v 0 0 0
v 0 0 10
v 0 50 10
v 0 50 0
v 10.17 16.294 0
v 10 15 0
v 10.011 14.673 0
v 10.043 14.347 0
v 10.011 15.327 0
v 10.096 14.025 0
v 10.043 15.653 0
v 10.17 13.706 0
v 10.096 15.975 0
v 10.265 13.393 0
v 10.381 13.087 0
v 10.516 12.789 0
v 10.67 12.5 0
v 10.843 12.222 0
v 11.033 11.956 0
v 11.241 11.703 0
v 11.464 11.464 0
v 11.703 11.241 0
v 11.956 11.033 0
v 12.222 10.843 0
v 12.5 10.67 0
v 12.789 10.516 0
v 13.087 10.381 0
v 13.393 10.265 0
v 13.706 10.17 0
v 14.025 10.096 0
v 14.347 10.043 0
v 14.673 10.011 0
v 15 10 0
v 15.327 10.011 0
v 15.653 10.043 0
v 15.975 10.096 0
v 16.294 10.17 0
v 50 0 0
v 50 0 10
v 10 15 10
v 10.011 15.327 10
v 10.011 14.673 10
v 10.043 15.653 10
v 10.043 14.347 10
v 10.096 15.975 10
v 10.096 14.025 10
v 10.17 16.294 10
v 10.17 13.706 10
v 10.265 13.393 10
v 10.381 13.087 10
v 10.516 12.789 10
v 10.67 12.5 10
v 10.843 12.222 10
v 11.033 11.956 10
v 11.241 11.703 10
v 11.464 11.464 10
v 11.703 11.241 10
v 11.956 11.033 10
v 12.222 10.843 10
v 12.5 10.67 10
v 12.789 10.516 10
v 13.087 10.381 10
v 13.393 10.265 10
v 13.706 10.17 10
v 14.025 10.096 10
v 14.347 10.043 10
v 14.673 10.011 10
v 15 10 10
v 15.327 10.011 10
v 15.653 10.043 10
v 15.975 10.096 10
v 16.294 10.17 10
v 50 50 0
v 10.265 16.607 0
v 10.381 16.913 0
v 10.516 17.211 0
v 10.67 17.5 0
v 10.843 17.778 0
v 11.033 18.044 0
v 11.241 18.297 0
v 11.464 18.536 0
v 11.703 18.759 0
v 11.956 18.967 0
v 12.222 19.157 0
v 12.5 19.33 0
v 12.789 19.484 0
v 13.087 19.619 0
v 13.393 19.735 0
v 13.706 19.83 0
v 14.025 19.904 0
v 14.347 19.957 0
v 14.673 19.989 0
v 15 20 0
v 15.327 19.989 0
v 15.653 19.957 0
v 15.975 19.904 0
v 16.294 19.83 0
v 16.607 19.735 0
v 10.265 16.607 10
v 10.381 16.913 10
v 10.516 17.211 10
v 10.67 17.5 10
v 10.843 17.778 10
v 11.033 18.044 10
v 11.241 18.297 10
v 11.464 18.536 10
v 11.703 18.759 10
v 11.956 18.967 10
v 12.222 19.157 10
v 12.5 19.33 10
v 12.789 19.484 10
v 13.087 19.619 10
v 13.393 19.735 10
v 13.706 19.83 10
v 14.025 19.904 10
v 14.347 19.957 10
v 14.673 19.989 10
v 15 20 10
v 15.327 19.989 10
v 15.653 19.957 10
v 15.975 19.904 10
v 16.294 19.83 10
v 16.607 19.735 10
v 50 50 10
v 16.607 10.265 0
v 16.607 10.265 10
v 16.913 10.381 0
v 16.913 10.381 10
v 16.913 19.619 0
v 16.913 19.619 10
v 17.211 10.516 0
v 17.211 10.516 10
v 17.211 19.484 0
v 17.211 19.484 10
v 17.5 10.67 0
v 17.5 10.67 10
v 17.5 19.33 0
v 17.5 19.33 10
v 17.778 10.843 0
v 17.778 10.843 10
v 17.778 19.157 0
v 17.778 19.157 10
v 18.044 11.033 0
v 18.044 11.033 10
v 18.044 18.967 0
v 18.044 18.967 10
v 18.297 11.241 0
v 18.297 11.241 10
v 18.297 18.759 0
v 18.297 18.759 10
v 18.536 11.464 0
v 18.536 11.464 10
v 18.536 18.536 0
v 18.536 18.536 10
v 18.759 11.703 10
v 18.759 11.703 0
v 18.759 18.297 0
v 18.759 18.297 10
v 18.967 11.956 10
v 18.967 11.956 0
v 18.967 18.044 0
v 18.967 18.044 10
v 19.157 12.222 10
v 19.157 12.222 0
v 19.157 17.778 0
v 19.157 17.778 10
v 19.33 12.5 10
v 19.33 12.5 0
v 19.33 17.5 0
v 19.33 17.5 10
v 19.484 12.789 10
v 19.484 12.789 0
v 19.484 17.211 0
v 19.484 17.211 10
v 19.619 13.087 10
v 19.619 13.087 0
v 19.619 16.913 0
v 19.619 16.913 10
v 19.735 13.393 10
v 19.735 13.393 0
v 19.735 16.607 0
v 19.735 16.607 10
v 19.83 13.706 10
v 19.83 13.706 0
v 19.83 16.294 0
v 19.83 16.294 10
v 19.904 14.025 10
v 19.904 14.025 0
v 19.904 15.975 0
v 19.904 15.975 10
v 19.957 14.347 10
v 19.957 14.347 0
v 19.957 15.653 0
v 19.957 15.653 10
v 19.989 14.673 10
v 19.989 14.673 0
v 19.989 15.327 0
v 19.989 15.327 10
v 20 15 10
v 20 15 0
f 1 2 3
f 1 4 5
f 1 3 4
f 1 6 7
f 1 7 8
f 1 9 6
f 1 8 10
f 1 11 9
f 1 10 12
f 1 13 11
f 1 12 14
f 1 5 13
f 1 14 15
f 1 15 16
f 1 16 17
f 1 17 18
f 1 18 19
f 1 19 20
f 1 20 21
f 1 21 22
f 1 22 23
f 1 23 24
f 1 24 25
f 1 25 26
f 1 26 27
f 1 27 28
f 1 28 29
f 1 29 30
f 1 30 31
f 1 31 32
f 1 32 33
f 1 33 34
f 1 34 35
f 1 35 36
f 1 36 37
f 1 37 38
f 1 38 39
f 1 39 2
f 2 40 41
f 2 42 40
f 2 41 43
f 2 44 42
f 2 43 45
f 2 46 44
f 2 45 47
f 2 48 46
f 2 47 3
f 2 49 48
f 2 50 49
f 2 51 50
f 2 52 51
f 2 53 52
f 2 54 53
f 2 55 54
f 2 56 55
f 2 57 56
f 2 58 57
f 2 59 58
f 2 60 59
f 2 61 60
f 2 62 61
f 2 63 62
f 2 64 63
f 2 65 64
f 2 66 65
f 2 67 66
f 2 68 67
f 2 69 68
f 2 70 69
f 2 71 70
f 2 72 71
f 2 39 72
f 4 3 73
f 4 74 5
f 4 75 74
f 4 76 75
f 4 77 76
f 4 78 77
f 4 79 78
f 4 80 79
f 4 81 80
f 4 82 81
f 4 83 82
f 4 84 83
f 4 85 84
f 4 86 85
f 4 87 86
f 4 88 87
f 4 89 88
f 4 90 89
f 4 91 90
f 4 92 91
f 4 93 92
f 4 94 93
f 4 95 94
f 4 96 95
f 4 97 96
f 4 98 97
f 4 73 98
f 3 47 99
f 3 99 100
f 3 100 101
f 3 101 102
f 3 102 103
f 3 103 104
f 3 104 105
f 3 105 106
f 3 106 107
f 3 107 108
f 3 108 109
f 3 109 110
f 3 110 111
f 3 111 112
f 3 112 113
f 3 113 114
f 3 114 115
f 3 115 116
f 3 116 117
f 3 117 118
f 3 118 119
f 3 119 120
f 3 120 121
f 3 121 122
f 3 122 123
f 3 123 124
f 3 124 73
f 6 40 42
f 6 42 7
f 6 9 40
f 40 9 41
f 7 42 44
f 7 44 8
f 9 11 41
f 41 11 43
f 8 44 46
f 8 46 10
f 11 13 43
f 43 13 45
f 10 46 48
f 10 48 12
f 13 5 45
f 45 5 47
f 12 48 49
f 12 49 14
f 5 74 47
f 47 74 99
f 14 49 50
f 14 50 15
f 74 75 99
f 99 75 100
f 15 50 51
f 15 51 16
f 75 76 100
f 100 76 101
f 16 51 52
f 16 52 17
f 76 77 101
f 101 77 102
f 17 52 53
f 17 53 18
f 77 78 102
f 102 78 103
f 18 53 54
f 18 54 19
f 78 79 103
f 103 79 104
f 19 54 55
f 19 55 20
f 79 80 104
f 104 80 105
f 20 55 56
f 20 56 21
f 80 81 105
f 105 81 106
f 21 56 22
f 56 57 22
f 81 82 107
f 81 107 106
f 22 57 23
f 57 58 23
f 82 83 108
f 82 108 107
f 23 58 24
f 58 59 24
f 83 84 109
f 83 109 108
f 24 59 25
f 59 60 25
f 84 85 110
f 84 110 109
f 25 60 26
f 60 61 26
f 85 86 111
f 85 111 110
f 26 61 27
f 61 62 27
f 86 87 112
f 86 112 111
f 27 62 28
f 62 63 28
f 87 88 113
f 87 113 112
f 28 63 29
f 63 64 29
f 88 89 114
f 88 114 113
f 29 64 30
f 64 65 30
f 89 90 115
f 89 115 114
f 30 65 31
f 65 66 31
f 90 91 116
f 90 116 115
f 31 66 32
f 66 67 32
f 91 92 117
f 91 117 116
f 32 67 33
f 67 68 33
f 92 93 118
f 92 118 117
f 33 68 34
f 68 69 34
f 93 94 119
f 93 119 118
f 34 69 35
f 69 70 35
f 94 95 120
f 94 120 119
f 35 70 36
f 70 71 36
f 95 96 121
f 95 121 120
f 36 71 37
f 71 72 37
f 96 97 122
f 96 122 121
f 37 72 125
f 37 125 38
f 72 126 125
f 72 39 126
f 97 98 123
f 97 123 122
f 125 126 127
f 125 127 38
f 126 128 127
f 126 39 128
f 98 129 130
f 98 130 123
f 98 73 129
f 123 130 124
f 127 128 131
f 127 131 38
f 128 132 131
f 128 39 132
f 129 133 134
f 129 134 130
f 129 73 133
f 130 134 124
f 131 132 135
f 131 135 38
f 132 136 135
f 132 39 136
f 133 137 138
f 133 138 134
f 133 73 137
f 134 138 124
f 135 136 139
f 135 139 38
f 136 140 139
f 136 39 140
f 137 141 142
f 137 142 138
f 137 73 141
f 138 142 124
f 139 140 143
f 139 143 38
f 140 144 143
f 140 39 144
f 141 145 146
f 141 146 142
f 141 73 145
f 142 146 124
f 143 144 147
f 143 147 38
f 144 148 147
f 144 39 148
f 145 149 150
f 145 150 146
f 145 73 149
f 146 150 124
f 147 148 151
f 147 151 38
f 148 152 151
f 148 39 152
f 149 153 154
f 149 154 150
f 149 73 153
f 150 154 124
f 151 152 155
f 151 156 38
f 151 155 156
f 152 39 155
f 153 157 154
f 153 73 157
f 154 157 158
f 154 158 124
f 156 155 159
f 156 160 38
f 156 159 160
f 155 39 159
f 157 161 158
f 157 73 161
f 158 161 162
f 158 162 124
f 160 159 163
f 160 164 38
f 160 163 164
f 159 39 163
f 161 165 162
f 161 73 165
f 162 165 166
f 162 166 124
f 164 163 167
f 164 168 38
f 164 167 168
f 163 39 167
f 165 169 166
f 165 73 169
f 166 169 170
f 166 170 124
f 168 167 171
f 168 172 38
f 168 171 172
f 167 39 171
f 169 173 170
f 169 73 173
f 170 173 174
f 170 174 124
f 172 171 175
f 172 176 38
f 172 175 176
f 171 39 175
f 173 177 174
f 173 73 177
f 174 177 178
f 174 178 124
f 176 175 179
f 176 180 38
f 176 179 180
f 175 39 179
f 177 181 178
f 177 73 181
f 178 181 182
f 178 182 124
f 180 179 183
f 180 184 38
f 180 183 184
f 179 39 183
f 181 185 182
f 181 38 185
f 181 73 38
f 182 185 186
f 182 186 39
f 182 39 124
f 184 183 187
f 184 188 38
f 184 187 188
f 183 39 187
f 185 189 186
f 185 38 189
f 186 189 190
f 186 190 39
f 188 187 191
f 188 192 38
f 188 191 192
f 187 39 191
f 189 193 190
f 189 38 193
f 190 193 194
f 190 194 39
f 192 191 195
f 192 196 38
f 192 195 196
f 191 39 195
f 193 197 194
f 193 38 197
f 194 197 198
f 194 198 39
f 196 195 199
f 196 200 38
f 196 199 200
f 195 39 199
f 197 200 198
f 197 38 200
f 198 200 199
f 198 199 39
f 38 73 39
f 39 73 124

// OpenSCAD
// proje-20260928-232228 / body
// 3D AI Designer V1.1 Geometry Engine uretimi - tum olculer mm.

// ============ PARAMETERS ============
width = 50;
depth = 50;
height = 10;
$fn = 96;  // dairesel yuzey cozunurlugu (bbox dogrulugu icin)
hole_h1_dia = 10;
hole_h1_x = 15;
hole_h1_y = 15;

// ============ GEOMETRY + BOOLEAN OPERATIONS ============
difference() { cube([50, 50, 10]); translate([15, 15, -1]) cylinder(d = 10, h = 12); }

// ============ EXPORT ============
// Export harici arac ile yapilir (Export-Stl.ps1).
